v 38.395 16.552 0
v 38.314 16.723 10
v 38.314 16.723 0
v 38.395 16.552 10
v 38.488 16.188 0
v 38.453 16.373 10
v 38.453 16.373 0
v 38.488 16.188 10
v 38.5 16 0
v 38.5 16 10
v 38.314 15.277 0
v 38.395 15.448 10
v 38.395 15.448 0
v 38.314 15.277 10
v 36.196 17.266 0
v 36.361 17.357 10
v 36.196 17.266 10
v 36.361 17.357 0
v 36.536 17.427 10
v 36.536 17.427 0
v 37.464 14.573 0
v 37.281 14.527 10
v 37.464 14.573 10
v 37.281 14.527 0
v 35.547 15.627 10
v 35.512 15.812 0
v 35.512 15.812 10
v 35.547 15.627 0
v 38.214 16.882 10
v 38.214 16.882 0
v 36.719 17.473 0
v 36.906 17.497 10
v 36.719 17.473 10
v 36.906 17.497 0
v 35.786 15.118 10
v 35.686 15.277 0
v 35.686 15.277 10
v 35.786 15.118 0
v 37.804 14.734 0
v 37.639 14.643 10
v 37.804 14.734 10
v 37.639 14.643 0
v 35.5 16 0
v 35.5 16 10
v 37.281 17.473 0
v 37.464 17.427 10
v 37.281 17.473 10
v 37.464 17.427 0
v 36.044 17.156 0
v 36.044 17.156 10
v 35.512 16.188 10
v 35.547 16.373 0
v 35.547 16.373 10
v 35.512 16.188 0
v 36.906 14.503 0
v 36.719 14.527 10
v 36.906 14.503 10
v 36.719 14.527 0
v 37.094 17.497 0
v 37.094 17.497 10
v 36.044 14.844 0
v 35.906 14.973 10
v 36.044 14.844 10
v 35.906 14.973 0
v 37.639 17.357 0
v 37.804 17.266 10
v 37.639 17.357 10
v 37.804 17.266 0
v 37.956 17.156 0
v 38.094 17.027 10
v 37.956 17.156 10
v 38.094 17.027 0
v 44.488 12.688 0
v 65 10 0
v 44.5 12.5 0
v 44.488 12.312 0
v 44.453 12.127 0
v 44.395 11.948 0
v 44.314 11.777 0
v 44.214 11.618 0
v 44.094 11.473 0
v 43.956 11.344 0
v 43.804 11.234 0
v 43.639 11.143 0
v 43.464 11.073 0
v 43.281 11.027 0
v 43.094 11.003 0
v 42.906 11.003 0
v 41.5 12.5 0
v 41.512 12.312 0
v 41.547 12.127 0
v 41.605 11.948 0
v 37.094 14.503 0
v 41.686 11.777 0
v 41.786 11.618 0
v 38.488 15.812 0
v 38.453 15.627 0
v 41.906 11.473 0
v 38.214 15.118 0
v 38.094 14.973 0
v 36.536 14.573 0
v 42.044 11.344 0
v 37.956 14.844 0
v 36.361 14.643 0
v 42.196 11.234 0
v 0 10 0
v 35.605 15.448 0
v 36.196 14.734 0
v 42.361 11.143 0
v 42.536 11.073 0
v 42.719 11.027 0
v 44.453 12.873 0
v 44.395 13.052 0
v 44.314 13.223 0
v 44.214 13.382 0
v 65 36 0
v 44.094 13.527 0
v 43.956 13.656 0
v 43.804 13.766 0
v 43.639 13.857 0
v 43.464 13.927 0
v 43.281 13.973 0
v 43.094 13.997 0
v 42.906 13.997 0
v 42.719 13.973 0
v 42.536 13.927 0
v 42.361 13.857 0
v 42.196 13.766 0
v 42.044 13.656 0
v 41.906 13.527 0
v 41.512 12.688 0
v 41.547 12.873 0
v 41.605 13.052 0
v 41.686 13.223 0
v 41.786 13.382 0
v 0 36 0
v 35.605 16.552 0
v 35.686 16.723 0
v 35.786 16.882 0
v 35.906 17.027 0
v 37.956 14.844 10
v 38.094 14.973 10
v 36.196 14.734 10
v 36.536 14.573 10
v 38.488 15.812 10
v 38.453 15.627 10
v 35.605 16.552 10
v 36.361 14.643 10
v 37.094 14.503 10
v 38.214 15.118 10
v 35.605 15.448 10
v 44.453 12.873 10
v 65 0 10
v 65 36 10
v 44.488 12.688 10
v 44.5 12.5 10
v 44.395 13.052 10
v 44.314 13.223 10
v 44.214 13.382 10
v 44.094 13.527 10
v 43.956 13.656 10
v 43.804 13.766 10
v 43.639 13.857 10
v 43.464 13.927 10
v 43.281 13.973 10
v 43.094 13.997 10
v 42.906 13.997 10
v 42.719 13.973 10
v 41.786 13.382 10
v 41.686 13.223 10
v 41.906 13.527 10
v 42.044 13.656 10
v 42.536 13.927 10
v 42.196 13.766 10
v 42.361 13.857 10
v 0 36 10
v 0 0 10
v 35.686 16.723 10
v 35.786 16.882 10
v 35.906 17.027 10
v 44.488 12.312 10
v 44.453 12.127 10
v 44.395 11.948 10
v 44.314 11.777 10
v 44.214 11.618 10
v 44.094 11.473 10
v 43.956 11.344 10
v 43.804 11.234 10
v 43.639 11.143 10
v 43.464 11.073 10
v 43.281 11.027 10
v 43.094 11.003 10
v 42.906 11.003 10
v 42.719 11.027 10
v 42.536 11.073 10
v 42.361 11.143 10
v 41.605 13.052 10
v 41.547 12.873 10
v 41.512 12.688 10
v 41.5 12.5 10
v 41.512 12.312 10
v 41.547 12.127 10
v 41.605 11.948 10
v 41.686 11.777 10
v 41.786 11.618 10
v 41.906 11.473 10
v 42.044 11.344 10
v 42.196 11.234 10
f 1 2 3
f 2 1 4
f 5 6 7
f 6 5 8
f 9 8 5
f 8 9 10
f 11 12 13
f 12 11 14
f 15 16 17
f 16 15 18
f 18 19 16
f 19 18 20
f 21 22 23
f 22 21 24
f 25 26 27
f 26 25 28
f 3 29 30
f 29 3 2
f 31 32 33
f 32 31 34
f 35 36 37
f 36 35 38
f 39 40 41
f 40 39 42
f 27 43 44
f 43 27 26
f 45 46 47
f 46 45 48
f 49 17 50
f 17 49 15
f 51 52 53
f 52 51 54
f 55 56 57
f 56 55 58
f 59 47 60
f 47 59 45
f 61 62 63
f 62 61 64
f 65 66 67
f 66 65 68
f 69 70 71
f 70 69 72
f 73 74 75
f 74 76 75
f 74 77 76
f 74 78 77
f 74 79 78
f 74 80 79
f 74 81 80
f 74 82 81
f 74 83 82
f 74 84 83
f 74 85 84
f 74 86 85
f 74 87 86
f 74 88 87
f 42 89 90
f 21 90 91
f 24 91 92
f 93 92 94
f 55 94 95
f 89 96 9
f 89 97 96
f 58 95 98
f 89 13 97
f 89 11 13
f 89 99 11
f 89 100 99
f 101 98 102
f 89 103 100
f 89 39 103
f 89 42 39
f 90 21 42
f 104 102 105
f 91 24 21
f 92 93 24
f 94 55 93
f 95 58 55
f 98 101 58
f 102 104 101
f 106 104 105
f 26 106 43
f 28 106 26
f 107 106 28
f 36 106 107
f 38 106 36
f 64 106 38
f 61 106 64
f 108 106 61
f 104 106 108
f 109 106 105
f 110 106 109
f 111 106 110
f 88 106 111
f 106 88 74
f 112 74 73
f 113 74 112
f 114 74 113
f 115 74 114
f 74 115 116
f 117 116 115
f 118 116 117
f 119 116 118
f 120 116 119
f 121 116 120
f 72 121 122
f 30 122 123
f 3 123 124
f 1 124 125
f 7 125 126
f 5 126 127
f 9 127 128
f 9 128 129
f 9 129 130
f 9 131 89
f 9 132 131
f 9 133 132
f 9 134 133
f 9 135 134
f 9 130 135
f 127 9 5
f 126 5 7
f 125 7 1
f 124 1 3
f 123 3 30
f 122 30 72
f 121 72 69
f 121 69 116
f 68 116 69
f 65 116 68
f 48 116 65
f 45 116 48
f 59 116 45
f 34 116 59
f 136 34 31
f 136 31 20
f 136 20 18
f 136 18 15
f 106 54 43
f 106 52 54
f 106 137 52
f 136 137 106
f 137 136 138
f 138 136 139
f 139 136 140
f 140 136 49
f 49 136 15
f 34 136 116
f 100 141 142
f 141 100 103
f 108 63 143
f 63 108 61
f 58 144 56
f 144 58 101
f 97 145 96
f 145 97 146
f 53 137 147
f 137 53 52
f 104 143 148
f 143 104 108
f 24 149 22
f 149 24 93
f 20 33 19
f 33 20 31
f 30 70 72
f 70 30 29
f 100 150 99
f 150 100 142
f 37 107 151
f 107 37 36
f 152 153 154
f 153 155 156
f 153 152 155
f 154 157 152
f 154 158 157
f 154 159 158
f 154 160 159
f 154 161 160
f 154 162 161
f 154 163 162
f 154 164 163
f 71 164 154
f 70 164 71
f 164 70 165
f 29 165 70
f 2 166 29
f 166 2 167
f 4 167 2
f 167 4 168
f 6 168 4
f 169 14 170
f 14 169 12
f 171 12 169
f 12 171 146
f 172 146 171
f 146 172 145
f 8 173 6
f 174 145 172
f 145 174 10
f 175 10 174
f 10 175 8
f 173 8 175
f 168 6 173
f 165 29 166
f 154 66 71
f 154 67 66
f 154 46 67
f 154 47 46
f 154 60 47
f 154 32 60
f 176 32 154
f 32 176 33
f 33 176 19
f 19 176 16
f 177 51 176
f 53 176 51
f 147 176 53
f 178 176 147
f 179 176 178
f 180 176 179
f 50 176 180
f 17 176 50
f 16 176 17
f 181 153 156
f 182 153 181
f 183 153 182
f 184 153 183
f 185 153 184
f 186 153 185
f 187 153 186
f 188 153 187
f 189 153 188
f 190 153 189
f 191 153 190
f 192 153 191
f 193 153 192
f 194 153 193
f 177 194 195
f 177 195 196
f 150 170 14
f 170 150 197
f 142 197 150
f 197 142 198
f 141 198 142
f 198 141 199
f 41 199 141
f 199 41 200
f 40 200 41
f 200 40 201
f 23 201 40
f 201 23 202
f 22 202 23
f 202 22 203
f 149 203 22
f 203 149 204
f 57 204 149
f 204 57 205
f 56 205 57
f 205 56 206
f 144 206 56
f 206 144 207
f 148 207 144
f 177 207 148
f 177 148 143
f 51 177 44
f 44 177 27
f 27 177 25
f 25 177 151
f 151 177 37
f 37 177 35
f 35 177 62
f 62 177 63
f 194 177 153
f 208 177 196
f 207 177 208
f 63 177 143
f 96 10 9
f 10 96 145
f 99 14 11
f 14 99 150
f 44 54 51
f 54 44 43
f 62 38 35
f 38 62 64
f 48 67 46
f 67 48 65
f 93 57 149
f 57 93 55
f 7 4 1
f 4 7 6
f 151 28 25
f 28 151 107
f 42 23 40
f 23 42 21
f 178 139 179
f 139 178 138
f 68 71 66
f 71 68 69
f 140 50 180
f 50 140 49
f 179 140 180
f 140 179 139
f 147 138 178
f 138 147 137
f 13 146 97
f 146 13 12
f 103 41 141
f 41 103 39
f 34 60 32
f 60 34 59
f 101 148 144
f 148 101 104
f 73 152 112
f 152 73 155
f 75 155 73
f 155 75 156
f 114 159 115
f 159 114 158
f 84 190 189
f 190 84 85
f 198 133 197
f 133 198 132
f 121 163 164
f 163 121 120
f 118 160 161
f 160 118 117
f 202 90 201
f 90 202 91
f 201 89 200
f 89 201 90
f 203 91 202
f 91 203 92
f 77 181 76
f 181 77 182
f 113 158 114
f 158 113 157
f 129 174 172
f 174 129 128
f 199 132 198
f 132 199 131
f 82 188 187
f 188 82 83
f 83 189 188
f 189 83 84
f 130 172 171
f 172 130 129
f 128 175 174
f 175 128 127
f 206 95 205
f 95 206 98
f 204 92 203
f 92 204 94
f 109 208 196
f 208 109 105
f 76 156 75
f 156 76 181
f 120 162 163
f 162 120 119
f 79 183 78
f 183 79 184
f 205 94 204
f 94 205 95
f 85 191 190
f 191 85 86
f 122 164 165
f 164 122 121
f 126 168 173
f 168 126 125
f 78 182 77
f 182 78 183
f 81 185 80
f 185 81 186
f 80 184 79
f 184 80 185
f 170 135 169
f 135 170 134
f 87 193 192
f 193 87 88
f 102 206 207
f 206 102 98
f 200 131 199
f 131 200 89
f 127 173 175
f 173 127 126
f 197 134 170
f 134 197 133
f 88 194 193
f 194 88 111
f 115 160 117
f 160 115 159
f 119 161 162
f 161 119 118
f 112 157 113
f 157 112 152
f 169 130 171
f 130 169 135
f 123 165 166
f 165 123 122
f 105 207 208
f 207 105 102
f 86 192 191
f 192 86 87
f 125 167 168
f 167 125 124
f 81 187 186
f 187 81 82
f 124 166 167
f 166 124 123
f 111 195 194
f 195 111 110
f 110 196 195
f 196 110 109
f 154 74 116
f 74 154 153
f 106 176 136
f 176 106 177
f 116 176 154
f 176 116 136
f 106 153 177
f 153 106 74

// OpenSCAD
$fn=50;
WW=65;
HH=36;
ZZ=10;
module wedge() {
    hull() {
    polyhedron([[0,0,0],[0,ZZ,0],[0,0,ZZ]],[[0,1,2]]);
    translate([WW,0,0])     polyhedron([[0,0,0],[0,ZZ,0],[0,0,ZZ]],[[0,1,2]]);
    }
}

module holes() {
    HX=37;
    HY=16;
    translate([HX,HY,0]) cylinder(ZZ,d=3);
    translate([HX+6,HY-3.5,0]) cylinder(ZZ,d=3);
}

module main() {
    difference() {
        cube([WW,HH,ZZ]);
        #wedge();
        #holes();
    }
}



main();
